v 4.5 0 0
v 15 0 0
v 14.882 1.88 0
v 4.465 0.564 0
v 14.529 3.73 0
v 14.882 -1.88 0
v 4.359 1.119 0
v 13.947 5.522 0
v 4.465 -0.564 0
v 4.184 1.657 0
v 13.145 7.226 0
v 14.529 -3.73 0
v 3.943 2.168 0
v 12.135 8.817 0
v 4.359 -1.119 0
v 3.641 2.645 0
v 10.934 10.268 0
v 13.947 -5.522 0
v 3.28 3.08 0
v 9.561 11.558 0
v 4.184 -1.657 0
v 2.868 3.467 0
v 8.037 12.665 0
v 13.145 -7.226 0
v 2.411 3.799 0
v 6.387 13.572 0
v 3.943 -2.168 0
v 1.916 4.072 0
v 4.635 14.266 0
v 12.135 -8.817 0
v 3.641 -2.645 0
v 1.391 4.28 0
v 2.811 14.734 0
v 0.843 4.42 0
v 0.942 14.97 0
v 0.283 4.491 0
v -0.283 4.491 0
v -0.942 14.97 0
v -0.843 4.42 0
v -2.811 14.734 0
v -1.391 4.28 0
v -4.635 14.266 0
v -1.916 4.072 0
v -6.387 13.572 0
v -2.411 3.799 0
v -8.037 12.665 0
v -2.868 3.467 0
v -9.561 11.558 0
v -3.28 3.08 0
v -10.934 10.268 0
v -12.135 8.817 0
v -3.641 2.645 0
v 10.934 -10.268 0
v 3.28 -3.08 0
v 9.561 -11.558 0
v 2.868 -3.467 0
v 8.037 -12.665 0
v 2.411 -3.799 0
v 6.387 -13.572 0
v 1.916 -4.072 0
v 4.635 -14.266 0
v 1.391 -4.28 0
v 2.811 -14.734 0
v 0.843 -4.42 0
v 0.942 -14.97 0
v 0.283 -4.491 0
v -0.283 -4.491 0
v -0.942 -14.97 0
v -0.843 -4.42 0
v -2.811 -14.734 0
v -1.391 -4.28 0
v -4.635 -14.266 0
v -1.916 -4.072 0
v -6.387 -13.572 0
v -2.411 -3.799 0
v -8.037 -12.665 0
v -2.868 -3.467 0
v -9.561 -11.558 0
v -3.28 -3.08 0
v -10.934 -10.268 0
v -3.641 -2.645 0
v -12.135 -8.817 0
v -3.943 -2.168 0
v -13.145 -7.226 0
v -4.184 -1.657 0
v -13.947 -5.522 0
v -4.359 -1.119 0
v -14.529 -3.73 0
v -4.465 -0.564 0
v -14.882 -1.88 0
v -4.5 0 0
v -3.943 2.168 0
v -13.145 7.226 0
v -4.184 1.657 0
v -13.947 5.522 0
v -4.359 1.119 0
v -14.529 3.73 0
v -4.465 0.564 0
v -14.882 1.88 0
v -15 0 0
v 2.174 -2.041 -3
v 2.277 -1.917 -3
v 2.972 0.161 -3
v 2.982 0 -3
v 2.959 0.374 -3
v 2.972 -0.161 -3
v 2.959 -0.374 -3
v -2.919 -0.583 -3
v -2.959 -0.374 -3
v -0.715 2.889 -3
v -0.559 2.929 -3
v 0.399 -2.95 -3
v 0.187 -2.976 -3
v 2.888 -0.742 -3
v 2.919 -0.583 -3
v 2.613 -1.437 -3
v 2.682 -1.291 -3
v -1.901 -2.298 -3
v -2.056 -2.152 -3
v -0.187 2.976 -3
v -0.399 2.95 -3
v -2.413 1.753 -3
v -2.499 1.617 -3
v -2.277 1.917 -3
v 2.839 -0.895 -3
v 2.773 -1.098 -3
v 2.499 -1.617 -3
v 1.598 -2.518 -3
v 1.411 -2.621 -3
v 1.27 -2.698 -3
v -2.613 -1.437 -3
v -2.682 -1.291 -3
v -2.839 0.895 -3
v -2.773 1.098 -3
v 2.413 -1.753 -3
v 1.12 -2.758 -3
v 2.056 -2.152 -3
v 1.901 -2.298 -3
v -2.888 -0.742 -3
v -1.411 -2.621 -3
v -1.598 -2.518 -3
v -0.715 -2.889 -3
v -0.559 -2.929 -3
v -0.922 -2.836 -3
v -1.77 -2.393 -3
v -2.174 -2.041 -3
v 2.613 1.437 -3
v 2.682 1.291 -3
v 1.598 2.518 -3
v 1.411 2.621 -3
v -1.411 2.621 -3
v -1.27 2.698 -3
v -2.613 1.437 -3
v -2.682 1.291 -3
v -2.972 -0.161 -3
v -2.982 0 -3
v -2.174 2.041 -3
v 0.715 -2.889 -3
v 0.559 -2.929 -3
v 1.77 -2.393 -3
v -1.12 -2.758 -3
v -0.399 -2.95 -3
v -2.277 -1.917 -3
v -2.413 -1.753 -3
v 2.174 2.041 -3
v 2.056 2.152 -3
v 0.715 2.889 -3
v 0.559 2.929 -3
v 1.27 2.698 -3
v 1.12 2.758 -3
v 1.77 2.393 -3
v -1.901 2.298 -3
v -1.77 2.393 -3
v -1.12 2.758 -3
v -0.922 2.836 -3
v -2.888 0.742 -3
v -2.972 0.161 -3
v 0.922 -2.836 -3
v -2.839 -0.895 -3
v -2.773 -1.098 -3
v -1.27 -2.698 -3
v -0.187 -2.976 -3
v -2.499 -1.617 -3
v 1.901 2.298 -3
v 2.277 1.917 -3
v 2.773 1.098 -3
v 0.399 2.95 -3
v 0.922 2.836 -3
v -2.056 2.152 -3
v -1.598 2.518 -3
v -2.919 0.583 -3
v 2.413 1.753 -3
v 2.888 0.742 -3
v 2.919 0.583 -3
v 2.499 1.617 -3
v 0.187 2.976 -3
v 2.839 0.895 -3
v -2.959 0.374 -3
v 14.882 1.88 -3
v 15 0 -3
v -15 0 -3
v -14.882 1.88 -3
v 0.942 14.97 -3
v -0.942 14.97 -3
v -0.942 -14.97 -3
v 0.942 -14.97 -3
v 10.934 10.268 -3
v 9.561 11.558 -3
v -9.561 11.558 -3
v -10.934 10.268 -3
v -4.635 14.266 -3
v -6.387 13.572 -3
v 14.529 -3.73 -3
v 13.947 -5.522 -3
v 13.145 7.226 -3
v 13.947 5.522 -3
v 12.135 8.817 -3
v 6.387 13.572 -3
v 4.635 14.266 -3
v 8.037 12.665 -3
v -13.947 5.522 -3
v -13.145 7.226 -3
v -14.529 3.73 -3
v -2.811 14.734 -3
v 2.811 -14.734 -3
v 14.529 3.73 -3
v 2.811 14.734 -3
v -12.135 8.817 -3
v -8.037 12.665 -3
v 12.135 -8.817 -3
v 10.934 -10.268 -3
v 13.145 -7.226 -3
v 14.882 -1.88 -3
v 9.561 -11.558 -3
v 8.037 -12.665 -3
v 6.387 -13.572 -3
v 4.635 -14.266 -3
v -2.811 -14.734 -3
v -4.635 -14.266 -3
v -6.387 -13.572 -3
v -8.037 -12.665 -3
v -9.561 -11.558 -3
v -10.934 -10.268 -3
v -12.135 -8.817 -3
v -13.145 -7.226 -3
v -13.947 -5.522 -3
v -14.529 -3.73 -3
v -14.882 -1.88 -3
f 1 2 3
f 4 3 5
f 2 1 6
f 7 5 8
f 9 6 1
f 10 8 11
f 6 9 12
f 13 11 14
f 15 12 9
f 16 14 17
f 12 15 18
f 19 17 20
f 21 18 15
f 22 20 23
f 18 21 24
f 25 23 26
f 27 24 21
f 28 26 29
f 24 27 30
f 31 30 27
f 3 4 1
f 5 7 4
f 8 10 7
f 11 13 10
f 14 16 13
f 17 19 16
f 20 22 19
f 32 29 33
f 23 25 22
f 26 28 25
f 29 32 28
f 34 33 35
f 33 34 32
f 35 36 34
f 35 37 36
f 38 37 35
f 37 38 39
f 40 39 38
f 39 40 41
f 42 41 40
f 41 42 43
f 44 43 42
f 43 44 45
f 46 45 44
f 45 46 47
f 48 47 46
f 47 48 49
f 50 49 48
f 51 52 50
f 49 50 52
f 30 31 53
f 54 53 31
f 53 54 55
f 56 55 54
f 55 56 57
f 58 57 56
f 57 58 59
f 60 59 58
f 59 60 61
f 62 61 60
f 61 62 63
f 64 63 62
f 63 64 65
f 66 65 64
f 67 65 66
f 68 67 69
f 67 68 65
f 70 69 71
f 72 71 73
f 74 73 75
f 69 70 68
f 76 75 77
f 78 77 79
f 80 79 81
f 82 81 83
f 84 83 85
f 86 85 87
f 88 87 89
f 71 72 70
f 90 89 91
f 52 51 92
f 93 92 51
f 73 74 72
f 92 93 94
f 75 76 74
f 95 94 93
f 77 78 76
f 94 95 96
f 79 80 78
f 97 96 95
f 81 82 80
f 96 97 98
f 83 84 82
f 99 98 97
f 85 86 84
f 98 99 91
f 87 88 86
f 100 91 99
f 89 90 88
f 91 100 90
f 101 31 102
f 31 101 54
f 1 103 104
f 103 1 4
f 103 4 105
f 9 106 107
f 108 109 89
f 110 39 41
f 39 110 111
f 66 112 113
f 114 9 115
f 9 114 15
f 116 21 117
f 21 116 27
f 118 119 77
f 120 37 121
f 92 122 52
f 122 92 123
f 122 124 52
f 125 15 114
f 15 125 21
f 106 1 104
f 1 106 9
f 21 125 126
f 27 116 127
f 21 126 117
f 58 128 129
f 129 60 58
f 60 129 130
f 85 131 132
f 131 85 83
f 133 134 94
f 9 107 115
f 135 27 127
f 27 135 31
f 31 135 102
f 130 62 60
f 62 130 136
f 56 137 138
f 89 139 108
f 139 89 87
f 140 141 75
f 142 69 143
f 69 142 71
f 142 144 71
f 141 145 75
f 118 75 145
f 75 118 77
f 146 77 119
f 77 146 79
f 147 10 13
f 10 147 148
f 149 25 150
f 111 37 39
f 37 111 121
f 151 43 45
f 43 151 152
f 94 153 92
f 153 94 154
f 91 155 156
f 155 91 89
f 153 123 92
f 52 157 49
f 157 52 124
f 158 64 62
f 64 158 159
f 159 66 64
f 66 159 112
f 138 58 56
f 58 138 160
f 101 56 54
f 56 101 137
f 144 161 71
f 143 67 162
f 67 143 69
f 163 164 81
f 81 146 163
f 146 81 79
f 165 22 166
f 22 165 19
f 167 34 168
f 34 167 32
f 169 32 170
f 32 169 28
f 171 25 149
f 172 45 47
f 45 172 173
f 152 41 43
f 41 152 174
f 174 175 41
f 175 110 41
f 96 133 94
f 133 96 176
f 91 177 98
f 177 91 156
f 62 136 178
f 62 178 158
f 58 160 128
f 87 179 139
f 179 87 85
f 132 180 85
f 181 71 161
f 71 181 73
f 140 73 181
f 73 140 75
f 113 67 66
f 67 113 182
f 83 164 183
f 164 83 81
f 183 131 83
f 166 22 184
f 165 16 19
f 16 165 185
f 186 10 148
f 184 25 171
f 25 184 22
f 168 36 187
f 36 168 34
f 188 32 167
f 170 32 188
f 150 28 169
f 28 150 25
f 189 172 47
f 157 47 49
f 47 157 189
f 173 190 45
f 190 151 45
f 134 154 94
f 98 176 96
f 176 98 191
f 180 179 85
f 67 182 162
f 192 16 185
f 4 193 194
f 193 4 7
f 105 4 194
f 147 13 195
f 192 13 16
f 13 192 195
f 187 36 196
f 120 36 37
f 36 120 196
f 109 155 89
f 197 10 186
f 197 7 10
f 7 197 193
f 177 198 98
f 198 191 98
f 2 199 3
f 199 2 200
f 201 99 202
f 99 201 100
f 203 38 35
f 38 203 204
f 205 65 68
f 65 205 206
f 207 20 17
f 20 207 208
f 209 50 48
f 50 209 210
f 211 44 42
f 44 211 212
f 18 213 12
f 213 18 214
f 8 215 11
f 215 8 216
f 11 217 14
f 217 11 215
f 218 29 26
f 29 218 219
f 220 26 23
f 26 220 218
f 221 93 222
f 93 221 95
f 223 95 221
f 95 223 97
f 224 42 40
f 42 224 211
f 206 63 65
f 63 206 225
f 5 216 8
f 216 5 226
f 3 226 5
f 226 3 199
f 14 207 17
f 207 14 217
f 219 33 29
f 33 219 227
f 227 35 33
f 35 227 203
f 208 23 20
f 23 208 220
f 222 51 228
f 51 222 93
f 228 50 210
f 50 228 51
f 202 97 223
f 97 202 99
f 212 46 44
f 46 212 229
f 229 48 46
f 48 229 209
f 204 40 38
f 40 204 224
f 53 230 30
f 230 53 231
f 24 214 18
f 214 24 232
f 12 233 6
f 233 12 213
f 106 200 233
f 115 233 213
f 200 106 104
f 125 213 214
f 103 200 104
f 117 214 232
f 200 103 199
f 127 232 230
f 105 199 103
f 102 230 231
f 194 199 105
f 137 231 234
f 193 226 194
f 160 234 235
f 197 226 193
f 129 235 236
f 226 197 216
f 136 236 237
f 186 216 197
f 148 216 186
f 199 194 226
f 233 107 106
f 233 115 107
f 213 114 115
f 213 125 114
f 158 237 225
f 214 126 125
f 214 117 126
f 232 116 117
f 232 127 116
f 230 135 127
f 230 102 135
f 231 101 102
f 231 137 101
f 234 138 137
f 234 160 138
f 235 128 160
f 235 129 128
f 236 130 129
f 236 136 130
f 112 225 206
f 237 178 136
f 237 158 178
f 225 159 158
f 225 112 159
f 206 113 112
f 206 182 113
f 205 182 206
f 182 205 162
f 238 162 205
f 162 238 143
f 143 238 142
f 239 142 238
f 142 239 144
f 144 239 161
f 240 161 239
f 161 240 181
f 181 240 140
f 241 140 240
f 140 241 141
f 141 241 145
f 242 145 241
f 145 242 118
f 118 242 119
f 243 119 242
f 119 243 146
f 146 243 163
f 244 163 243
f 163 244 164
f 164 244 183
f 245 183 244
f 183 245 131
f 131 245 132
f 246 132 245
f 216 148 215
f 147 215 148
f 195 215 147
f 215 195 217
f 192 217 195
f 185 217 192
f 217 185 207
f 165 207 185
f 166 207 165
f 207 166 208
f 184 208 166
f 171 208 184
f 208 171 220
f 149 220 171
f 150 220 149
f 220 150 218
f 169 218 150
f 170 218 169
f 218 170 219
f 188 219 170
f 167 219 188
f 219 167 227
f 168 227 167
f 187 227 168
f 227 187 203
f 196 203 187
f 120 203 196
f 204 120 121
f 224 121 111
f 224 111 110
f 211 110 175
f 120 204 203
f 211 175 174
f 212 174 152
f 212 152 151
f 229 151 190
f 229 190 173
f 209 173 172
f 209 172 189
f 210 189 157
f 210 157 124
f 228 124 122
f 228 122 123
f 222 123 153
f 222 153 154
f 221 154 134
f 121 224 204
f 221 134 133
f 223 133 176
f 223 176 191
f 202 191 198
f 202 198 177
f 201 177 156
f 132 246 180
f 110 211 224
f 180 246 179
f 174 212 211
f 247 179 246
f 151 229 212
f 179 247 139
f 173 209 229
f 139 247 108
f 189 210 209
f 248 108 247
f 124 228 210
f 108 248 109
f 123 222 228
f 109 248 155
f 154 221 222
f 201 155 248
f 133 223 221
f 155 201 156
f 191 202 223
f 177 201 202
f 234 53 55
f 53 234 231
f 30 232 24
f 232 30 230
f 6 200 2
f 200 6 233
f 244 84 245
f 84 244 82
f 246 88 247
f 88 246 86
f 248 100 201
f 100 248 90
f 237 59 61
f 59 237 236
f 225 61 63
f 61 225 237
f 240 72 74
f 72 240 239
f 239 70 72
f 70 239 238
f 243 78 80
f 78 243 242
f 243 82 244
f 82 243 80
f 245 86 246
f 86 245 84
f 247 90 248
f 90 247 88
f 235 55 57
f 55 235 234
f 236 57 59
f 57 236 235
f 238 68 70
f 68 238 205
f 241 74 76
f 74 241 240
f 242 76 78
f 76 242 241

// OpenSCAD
$fn = 50;


difference() {
	union() {
		translate(v = [0, 0, -3.0000000000]) {
			cylinder(h = 3, r = 15.0000000000);
		}
	}
	union() {
		translate(v = [0, 0, 0]) {
			rotate(a = [0, 0, 0]) {
				difference() {
					union() {
						translate(v = [0, 0, -6.0000000000]) {
							cylinder(h = 6, r = 2.2500000000);
						}
						translate(v = [0, 0, -4.2000000000]) {
							cylinder(h = 4.2000000000, r1 = 2.3750000000, r2 = 4.5000000000);
						}
						translate(v = [0, 0, -6.0000000000]) {
							cylinder(h = 6, r = 2.3750000000);
						}
						translate(v = [0, 0, -6.0000000000]) {
							cylinder(h = 6, r = 2.2500000000);
						}
					}
					union();
				}
			}
		}
	}
}
